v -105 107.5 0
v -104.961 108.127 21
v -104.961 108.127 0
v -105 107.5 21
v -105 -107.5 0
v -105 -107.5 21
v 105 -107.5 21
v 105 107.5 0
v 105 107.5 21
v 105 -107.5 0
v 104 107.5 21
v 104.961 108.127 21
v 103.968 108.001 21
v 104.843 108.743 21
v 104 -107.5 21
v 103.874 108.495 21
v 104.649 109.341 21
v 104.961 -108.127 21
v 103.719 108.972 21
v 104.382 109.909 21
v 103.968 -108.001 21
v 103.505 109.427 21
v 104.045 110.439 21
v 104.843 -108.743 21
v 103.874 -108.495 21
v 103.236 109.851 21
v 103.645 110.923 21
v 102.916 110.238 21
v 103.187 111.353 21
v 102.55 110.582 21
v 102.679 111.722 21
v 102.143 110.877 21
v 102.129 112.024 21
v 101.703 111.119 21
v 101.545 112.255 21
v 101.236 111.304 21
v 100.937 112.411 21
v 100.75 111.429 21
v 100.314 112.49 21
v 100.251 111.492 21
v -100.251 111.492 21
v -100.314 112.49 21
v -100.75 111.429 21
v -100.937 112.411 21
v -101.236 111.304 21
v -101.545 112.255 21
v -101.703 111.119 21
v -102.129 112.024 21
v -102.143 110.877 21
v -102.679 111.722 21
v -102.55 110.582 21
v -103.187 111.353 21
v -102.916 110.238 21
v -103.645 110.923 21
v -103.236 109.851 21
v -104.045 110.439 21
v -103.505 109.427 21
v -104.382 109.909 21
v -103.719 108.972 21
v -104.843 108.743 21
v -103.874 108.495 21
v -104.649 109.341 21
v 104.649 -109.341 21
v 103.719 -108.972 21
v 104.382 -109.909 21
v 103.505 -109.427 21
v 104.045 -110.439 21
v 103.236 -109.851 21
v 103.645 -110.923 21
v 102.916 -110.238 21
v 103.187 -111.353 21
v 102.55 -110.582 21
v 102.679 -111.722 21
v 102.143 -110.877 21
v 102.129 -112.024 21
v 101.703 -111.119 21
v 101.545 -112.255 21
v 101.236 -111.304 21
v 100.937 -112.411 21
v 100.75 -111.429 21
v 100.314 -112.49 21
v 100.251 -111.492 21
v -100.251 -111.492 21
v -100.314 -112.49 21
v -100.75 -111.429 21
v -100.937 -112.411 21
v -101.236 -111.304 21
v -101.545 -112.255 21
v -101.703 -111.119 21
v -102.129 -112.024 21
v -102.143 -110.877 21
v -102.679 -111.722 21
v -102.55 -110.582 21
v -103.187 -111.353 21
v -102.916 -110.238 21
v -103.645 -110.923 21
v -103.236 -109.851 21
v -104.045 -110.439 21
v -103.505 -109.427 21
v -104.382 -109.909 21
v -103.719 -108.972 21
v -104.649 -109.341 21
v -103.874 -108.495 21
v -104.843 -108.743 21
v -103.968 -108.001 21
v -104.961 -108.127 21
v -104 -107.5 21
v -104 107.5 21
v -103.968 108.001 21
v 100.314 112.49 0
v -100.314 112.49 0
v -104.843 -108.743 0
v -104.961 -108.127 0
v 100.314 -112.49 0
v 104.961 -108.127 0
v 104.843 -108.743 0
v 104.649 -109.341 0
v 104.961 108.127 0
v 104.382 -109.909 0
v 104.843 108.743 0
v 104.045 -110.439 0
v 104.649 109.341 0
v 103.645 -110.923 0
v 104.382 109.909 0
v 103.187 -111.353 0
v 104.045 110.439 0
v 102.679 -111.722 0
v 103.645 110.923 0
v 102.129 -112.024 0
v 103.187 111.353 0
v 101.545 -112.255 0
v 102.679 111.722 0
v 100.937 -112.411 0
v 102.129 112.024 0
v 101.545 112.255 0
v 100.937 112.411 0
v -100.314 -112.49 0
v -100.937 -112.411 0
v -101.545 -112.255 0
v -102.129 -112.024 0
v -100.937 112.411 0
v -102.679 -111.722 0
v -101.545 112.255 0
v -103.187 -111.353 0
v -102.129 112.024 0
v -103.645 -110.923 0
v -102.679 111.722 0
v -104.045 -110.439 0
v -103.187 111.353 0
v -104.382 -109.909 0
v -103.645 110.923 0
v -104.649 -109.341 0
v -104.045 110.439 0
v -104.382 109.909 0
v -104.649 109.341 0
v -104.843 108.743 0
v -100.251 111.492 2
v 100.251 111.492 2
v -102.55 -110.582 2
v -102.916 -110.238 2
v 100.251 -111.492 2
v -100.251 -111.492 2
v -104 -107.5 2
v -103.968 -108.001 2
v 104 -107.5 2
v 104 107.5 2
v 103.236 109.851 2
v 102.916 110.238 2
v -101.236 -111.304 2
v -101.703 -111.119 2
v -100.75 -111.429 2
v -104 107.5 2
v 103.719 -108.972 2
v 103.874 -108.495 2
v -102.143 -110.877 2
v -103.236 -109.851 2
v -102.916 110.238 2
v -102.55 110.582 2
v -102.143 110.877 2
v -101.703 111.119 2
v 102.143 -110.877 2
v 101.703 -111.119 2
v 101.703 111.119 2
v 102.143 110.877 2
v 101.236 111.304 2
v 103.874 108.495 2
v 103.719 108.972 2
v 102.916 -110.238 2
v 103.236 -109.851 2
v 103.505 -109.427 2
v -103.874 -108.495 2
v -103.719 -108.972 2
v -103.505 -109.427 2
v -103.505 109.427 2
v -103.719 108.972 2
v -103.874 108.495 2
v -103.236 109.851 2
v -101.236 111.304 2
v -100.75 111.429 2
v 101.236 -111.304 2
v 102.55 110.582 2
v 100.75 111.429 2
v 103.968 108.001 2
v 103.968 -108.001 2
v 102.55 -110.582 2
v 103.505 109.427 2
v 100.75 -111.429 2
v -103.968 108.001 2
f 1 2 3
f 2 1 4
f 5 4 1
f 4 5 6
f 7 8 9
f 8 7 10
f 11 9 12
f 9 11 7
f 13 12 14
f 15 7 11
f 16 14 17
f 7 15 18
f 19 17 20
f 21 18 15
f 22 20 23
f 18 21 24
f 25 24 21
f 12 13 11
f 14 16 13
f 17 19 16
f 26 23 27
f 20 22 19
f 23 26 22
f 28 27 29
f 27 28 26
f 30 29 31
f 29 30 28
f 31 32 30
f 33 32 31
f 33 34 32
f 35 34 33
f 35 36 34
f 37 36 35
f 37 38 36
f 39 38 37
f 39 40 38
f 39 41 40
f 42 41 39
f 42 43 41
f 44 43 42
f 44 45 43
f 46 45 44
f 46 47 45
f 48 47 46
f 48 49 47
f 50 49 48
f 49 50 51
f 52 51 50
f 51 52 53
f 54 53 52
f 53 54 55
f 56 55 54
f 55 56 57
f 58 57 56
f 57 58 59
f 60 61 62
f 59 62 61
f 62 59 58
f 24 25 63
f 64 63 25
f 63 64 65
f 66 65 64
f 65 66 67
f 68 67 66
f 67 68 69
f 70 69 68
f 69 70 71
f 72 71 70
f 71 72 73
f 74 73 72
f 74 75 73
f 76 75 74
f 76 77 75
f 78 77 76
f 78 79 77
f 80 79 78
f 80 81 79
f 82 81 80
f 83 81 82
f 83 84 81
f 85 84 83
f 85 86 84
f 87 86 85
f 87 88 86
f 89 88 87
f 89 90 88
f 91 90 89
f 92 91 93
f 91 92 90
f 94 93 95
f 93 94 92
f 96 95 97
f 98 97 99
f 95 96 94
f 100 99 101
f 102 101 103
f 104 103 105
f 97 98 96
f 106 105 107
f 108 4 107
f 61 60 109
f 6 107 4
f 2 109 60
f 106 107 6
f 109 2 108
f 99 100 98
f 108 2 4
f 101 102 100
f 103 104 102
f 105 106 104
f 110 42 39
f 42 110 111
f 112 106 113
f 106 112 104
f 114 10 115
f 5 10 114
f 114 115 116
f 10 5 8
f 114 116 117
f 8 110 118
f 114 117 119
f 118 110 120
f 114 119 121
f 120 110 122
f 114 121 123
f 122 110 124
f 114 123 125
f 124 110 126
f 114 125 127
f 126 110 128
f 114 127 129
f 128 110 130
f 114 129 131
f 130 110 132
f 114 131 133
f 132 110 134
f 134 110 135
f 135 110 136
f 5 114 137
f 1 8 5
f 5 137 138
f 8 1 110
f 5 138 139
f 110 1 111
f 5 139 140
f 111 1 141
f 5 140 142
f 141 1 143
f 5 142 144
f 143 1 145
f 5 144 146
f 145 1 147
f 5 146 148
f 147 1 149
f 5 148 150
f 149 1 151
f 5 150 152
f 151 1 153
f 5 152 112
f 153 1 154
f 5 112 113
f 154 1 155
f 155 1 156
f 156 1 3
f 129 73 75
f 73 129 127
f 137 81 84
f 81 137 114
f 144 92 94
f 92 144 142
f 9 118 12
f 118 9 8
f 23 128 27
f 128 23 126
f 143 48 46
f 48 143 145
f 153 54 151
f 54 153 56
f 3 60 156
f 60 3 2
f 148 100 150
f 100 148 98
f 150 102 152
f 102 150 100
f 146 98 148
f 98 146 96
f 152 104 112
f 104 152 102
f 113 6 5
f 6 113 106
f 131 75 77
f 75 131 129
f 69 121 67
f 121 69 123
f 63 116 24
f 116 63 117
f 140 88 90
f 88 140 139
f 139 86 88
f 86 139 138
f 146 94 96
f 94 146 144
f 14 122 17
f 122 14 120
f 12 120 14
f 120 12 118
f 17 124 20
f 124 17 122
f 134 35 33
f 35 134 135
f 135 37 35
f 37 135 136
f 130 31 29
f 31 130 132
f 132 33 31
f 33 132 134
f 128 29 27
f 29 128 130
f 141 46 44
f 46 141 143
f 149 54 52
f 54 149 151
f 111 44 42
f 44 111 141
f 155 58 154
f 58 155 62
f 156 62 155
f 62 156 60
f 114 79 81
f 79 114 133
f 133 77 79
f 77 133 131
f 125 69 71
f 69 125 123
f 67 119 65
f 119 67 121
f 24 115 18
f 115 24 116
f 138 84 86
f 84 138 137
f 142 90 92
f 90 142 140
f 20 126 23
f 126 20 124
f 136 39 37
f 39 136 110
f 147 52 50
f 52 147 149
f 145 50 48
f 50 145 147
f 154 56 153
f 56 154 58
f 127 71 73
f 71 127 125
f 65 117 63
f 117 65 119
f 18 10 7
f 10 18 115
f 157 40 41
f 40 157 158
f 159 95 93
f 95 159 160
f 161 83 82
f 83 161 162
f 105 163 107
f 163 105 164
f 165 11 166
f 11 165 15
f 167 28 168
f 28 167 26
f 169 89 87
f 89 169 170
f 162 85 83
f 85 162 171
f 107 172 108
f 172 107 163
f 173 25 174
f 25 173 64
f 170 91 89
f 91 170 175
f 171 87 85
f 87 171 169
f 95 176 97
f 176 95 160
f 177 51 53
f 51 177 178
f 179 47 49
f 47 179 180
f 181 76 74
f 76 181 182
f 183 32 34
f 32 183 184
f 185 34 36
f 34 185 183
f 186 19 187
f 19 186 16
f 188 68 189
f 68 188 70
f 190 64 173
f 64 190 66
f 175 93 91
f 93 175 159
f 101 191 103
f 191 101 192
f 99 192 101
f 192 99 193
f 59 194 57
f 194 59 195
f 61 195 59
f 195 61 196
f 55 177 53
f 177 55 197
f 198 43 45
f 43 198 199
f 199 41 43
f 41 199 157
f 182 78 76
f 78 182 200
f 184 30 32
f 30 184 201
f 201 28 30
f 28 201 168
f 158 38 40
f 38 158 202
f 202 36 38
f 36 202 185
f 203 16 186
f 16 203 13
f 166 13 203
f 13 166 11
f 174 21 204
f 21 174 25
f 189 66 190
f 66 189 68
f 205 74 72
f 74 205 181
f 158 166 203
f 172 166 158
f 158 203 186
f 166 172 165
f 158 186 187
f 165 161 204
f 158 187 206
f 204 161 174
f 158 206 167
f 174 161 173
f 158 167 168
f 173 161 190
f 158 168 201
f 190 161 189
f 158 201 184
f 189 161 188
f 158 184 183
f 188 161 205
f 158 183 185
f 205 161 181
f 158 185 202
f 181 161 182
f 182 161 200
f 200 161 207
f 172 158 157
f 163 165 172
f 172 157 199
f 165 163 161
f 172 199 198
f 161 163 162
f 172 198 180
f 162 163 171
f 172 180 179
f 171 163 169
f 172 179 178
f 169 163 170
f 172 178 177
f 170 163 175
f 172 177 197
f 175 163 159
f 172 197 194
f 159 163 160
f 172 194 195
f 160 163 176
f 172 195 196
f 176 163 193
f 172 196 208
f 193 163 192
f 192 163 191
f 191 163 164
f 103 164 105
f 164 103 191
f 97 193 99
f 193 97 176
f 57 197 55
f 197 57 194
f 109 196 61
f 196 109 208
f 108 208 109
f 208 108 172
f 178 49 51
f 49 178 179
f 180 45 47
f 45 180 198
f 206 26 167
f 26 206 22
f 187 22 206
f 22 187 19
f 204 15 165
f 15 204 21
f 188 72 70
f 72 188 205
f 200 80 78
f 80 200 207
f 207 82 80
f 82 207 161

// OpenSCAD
$fn = 50;


difference() {
	union() {
		hull() {
			translate(v = [-100.0000000000, 107.5000000000, 0]) {
				cylinder(h = 21, r = 5);
			}
			translate(v = [100.0000000000, 107.5000000000, 0]) {
				cylinder(h = 21, r = 5);
			}
			translate(v = [-100.0000000000, -107.5000000000, 0]) {
				cylinder(h = 21, r = 5);
			}
			translate(v = [100.0000000000, -107.5000000000, 0]) {
				cylinder(h = 21, r = 5);
			}
		}
	}
	union() {
		translate(v = [0, 0, 2]) {
			hull() {
				translate(v = [-100.0000000000, 107.5000000000, 0]) {
					cylinder(h = 19, r = 4);
				}
				translate(v = [100.0000000000, 107.5000000000, 0]) {
					cylinder(h = 19, r = 4);
				}
				translate(v = [-100.0000000000, -107.5000000000, 0]) {
					cylinder(h = 19, r = 4);
				}
				translate(v = [100.0000000000, -107.5000000000, 0]) {
					cylinder(h = 19, r = 4);
				}
			}
		}
	}
}
